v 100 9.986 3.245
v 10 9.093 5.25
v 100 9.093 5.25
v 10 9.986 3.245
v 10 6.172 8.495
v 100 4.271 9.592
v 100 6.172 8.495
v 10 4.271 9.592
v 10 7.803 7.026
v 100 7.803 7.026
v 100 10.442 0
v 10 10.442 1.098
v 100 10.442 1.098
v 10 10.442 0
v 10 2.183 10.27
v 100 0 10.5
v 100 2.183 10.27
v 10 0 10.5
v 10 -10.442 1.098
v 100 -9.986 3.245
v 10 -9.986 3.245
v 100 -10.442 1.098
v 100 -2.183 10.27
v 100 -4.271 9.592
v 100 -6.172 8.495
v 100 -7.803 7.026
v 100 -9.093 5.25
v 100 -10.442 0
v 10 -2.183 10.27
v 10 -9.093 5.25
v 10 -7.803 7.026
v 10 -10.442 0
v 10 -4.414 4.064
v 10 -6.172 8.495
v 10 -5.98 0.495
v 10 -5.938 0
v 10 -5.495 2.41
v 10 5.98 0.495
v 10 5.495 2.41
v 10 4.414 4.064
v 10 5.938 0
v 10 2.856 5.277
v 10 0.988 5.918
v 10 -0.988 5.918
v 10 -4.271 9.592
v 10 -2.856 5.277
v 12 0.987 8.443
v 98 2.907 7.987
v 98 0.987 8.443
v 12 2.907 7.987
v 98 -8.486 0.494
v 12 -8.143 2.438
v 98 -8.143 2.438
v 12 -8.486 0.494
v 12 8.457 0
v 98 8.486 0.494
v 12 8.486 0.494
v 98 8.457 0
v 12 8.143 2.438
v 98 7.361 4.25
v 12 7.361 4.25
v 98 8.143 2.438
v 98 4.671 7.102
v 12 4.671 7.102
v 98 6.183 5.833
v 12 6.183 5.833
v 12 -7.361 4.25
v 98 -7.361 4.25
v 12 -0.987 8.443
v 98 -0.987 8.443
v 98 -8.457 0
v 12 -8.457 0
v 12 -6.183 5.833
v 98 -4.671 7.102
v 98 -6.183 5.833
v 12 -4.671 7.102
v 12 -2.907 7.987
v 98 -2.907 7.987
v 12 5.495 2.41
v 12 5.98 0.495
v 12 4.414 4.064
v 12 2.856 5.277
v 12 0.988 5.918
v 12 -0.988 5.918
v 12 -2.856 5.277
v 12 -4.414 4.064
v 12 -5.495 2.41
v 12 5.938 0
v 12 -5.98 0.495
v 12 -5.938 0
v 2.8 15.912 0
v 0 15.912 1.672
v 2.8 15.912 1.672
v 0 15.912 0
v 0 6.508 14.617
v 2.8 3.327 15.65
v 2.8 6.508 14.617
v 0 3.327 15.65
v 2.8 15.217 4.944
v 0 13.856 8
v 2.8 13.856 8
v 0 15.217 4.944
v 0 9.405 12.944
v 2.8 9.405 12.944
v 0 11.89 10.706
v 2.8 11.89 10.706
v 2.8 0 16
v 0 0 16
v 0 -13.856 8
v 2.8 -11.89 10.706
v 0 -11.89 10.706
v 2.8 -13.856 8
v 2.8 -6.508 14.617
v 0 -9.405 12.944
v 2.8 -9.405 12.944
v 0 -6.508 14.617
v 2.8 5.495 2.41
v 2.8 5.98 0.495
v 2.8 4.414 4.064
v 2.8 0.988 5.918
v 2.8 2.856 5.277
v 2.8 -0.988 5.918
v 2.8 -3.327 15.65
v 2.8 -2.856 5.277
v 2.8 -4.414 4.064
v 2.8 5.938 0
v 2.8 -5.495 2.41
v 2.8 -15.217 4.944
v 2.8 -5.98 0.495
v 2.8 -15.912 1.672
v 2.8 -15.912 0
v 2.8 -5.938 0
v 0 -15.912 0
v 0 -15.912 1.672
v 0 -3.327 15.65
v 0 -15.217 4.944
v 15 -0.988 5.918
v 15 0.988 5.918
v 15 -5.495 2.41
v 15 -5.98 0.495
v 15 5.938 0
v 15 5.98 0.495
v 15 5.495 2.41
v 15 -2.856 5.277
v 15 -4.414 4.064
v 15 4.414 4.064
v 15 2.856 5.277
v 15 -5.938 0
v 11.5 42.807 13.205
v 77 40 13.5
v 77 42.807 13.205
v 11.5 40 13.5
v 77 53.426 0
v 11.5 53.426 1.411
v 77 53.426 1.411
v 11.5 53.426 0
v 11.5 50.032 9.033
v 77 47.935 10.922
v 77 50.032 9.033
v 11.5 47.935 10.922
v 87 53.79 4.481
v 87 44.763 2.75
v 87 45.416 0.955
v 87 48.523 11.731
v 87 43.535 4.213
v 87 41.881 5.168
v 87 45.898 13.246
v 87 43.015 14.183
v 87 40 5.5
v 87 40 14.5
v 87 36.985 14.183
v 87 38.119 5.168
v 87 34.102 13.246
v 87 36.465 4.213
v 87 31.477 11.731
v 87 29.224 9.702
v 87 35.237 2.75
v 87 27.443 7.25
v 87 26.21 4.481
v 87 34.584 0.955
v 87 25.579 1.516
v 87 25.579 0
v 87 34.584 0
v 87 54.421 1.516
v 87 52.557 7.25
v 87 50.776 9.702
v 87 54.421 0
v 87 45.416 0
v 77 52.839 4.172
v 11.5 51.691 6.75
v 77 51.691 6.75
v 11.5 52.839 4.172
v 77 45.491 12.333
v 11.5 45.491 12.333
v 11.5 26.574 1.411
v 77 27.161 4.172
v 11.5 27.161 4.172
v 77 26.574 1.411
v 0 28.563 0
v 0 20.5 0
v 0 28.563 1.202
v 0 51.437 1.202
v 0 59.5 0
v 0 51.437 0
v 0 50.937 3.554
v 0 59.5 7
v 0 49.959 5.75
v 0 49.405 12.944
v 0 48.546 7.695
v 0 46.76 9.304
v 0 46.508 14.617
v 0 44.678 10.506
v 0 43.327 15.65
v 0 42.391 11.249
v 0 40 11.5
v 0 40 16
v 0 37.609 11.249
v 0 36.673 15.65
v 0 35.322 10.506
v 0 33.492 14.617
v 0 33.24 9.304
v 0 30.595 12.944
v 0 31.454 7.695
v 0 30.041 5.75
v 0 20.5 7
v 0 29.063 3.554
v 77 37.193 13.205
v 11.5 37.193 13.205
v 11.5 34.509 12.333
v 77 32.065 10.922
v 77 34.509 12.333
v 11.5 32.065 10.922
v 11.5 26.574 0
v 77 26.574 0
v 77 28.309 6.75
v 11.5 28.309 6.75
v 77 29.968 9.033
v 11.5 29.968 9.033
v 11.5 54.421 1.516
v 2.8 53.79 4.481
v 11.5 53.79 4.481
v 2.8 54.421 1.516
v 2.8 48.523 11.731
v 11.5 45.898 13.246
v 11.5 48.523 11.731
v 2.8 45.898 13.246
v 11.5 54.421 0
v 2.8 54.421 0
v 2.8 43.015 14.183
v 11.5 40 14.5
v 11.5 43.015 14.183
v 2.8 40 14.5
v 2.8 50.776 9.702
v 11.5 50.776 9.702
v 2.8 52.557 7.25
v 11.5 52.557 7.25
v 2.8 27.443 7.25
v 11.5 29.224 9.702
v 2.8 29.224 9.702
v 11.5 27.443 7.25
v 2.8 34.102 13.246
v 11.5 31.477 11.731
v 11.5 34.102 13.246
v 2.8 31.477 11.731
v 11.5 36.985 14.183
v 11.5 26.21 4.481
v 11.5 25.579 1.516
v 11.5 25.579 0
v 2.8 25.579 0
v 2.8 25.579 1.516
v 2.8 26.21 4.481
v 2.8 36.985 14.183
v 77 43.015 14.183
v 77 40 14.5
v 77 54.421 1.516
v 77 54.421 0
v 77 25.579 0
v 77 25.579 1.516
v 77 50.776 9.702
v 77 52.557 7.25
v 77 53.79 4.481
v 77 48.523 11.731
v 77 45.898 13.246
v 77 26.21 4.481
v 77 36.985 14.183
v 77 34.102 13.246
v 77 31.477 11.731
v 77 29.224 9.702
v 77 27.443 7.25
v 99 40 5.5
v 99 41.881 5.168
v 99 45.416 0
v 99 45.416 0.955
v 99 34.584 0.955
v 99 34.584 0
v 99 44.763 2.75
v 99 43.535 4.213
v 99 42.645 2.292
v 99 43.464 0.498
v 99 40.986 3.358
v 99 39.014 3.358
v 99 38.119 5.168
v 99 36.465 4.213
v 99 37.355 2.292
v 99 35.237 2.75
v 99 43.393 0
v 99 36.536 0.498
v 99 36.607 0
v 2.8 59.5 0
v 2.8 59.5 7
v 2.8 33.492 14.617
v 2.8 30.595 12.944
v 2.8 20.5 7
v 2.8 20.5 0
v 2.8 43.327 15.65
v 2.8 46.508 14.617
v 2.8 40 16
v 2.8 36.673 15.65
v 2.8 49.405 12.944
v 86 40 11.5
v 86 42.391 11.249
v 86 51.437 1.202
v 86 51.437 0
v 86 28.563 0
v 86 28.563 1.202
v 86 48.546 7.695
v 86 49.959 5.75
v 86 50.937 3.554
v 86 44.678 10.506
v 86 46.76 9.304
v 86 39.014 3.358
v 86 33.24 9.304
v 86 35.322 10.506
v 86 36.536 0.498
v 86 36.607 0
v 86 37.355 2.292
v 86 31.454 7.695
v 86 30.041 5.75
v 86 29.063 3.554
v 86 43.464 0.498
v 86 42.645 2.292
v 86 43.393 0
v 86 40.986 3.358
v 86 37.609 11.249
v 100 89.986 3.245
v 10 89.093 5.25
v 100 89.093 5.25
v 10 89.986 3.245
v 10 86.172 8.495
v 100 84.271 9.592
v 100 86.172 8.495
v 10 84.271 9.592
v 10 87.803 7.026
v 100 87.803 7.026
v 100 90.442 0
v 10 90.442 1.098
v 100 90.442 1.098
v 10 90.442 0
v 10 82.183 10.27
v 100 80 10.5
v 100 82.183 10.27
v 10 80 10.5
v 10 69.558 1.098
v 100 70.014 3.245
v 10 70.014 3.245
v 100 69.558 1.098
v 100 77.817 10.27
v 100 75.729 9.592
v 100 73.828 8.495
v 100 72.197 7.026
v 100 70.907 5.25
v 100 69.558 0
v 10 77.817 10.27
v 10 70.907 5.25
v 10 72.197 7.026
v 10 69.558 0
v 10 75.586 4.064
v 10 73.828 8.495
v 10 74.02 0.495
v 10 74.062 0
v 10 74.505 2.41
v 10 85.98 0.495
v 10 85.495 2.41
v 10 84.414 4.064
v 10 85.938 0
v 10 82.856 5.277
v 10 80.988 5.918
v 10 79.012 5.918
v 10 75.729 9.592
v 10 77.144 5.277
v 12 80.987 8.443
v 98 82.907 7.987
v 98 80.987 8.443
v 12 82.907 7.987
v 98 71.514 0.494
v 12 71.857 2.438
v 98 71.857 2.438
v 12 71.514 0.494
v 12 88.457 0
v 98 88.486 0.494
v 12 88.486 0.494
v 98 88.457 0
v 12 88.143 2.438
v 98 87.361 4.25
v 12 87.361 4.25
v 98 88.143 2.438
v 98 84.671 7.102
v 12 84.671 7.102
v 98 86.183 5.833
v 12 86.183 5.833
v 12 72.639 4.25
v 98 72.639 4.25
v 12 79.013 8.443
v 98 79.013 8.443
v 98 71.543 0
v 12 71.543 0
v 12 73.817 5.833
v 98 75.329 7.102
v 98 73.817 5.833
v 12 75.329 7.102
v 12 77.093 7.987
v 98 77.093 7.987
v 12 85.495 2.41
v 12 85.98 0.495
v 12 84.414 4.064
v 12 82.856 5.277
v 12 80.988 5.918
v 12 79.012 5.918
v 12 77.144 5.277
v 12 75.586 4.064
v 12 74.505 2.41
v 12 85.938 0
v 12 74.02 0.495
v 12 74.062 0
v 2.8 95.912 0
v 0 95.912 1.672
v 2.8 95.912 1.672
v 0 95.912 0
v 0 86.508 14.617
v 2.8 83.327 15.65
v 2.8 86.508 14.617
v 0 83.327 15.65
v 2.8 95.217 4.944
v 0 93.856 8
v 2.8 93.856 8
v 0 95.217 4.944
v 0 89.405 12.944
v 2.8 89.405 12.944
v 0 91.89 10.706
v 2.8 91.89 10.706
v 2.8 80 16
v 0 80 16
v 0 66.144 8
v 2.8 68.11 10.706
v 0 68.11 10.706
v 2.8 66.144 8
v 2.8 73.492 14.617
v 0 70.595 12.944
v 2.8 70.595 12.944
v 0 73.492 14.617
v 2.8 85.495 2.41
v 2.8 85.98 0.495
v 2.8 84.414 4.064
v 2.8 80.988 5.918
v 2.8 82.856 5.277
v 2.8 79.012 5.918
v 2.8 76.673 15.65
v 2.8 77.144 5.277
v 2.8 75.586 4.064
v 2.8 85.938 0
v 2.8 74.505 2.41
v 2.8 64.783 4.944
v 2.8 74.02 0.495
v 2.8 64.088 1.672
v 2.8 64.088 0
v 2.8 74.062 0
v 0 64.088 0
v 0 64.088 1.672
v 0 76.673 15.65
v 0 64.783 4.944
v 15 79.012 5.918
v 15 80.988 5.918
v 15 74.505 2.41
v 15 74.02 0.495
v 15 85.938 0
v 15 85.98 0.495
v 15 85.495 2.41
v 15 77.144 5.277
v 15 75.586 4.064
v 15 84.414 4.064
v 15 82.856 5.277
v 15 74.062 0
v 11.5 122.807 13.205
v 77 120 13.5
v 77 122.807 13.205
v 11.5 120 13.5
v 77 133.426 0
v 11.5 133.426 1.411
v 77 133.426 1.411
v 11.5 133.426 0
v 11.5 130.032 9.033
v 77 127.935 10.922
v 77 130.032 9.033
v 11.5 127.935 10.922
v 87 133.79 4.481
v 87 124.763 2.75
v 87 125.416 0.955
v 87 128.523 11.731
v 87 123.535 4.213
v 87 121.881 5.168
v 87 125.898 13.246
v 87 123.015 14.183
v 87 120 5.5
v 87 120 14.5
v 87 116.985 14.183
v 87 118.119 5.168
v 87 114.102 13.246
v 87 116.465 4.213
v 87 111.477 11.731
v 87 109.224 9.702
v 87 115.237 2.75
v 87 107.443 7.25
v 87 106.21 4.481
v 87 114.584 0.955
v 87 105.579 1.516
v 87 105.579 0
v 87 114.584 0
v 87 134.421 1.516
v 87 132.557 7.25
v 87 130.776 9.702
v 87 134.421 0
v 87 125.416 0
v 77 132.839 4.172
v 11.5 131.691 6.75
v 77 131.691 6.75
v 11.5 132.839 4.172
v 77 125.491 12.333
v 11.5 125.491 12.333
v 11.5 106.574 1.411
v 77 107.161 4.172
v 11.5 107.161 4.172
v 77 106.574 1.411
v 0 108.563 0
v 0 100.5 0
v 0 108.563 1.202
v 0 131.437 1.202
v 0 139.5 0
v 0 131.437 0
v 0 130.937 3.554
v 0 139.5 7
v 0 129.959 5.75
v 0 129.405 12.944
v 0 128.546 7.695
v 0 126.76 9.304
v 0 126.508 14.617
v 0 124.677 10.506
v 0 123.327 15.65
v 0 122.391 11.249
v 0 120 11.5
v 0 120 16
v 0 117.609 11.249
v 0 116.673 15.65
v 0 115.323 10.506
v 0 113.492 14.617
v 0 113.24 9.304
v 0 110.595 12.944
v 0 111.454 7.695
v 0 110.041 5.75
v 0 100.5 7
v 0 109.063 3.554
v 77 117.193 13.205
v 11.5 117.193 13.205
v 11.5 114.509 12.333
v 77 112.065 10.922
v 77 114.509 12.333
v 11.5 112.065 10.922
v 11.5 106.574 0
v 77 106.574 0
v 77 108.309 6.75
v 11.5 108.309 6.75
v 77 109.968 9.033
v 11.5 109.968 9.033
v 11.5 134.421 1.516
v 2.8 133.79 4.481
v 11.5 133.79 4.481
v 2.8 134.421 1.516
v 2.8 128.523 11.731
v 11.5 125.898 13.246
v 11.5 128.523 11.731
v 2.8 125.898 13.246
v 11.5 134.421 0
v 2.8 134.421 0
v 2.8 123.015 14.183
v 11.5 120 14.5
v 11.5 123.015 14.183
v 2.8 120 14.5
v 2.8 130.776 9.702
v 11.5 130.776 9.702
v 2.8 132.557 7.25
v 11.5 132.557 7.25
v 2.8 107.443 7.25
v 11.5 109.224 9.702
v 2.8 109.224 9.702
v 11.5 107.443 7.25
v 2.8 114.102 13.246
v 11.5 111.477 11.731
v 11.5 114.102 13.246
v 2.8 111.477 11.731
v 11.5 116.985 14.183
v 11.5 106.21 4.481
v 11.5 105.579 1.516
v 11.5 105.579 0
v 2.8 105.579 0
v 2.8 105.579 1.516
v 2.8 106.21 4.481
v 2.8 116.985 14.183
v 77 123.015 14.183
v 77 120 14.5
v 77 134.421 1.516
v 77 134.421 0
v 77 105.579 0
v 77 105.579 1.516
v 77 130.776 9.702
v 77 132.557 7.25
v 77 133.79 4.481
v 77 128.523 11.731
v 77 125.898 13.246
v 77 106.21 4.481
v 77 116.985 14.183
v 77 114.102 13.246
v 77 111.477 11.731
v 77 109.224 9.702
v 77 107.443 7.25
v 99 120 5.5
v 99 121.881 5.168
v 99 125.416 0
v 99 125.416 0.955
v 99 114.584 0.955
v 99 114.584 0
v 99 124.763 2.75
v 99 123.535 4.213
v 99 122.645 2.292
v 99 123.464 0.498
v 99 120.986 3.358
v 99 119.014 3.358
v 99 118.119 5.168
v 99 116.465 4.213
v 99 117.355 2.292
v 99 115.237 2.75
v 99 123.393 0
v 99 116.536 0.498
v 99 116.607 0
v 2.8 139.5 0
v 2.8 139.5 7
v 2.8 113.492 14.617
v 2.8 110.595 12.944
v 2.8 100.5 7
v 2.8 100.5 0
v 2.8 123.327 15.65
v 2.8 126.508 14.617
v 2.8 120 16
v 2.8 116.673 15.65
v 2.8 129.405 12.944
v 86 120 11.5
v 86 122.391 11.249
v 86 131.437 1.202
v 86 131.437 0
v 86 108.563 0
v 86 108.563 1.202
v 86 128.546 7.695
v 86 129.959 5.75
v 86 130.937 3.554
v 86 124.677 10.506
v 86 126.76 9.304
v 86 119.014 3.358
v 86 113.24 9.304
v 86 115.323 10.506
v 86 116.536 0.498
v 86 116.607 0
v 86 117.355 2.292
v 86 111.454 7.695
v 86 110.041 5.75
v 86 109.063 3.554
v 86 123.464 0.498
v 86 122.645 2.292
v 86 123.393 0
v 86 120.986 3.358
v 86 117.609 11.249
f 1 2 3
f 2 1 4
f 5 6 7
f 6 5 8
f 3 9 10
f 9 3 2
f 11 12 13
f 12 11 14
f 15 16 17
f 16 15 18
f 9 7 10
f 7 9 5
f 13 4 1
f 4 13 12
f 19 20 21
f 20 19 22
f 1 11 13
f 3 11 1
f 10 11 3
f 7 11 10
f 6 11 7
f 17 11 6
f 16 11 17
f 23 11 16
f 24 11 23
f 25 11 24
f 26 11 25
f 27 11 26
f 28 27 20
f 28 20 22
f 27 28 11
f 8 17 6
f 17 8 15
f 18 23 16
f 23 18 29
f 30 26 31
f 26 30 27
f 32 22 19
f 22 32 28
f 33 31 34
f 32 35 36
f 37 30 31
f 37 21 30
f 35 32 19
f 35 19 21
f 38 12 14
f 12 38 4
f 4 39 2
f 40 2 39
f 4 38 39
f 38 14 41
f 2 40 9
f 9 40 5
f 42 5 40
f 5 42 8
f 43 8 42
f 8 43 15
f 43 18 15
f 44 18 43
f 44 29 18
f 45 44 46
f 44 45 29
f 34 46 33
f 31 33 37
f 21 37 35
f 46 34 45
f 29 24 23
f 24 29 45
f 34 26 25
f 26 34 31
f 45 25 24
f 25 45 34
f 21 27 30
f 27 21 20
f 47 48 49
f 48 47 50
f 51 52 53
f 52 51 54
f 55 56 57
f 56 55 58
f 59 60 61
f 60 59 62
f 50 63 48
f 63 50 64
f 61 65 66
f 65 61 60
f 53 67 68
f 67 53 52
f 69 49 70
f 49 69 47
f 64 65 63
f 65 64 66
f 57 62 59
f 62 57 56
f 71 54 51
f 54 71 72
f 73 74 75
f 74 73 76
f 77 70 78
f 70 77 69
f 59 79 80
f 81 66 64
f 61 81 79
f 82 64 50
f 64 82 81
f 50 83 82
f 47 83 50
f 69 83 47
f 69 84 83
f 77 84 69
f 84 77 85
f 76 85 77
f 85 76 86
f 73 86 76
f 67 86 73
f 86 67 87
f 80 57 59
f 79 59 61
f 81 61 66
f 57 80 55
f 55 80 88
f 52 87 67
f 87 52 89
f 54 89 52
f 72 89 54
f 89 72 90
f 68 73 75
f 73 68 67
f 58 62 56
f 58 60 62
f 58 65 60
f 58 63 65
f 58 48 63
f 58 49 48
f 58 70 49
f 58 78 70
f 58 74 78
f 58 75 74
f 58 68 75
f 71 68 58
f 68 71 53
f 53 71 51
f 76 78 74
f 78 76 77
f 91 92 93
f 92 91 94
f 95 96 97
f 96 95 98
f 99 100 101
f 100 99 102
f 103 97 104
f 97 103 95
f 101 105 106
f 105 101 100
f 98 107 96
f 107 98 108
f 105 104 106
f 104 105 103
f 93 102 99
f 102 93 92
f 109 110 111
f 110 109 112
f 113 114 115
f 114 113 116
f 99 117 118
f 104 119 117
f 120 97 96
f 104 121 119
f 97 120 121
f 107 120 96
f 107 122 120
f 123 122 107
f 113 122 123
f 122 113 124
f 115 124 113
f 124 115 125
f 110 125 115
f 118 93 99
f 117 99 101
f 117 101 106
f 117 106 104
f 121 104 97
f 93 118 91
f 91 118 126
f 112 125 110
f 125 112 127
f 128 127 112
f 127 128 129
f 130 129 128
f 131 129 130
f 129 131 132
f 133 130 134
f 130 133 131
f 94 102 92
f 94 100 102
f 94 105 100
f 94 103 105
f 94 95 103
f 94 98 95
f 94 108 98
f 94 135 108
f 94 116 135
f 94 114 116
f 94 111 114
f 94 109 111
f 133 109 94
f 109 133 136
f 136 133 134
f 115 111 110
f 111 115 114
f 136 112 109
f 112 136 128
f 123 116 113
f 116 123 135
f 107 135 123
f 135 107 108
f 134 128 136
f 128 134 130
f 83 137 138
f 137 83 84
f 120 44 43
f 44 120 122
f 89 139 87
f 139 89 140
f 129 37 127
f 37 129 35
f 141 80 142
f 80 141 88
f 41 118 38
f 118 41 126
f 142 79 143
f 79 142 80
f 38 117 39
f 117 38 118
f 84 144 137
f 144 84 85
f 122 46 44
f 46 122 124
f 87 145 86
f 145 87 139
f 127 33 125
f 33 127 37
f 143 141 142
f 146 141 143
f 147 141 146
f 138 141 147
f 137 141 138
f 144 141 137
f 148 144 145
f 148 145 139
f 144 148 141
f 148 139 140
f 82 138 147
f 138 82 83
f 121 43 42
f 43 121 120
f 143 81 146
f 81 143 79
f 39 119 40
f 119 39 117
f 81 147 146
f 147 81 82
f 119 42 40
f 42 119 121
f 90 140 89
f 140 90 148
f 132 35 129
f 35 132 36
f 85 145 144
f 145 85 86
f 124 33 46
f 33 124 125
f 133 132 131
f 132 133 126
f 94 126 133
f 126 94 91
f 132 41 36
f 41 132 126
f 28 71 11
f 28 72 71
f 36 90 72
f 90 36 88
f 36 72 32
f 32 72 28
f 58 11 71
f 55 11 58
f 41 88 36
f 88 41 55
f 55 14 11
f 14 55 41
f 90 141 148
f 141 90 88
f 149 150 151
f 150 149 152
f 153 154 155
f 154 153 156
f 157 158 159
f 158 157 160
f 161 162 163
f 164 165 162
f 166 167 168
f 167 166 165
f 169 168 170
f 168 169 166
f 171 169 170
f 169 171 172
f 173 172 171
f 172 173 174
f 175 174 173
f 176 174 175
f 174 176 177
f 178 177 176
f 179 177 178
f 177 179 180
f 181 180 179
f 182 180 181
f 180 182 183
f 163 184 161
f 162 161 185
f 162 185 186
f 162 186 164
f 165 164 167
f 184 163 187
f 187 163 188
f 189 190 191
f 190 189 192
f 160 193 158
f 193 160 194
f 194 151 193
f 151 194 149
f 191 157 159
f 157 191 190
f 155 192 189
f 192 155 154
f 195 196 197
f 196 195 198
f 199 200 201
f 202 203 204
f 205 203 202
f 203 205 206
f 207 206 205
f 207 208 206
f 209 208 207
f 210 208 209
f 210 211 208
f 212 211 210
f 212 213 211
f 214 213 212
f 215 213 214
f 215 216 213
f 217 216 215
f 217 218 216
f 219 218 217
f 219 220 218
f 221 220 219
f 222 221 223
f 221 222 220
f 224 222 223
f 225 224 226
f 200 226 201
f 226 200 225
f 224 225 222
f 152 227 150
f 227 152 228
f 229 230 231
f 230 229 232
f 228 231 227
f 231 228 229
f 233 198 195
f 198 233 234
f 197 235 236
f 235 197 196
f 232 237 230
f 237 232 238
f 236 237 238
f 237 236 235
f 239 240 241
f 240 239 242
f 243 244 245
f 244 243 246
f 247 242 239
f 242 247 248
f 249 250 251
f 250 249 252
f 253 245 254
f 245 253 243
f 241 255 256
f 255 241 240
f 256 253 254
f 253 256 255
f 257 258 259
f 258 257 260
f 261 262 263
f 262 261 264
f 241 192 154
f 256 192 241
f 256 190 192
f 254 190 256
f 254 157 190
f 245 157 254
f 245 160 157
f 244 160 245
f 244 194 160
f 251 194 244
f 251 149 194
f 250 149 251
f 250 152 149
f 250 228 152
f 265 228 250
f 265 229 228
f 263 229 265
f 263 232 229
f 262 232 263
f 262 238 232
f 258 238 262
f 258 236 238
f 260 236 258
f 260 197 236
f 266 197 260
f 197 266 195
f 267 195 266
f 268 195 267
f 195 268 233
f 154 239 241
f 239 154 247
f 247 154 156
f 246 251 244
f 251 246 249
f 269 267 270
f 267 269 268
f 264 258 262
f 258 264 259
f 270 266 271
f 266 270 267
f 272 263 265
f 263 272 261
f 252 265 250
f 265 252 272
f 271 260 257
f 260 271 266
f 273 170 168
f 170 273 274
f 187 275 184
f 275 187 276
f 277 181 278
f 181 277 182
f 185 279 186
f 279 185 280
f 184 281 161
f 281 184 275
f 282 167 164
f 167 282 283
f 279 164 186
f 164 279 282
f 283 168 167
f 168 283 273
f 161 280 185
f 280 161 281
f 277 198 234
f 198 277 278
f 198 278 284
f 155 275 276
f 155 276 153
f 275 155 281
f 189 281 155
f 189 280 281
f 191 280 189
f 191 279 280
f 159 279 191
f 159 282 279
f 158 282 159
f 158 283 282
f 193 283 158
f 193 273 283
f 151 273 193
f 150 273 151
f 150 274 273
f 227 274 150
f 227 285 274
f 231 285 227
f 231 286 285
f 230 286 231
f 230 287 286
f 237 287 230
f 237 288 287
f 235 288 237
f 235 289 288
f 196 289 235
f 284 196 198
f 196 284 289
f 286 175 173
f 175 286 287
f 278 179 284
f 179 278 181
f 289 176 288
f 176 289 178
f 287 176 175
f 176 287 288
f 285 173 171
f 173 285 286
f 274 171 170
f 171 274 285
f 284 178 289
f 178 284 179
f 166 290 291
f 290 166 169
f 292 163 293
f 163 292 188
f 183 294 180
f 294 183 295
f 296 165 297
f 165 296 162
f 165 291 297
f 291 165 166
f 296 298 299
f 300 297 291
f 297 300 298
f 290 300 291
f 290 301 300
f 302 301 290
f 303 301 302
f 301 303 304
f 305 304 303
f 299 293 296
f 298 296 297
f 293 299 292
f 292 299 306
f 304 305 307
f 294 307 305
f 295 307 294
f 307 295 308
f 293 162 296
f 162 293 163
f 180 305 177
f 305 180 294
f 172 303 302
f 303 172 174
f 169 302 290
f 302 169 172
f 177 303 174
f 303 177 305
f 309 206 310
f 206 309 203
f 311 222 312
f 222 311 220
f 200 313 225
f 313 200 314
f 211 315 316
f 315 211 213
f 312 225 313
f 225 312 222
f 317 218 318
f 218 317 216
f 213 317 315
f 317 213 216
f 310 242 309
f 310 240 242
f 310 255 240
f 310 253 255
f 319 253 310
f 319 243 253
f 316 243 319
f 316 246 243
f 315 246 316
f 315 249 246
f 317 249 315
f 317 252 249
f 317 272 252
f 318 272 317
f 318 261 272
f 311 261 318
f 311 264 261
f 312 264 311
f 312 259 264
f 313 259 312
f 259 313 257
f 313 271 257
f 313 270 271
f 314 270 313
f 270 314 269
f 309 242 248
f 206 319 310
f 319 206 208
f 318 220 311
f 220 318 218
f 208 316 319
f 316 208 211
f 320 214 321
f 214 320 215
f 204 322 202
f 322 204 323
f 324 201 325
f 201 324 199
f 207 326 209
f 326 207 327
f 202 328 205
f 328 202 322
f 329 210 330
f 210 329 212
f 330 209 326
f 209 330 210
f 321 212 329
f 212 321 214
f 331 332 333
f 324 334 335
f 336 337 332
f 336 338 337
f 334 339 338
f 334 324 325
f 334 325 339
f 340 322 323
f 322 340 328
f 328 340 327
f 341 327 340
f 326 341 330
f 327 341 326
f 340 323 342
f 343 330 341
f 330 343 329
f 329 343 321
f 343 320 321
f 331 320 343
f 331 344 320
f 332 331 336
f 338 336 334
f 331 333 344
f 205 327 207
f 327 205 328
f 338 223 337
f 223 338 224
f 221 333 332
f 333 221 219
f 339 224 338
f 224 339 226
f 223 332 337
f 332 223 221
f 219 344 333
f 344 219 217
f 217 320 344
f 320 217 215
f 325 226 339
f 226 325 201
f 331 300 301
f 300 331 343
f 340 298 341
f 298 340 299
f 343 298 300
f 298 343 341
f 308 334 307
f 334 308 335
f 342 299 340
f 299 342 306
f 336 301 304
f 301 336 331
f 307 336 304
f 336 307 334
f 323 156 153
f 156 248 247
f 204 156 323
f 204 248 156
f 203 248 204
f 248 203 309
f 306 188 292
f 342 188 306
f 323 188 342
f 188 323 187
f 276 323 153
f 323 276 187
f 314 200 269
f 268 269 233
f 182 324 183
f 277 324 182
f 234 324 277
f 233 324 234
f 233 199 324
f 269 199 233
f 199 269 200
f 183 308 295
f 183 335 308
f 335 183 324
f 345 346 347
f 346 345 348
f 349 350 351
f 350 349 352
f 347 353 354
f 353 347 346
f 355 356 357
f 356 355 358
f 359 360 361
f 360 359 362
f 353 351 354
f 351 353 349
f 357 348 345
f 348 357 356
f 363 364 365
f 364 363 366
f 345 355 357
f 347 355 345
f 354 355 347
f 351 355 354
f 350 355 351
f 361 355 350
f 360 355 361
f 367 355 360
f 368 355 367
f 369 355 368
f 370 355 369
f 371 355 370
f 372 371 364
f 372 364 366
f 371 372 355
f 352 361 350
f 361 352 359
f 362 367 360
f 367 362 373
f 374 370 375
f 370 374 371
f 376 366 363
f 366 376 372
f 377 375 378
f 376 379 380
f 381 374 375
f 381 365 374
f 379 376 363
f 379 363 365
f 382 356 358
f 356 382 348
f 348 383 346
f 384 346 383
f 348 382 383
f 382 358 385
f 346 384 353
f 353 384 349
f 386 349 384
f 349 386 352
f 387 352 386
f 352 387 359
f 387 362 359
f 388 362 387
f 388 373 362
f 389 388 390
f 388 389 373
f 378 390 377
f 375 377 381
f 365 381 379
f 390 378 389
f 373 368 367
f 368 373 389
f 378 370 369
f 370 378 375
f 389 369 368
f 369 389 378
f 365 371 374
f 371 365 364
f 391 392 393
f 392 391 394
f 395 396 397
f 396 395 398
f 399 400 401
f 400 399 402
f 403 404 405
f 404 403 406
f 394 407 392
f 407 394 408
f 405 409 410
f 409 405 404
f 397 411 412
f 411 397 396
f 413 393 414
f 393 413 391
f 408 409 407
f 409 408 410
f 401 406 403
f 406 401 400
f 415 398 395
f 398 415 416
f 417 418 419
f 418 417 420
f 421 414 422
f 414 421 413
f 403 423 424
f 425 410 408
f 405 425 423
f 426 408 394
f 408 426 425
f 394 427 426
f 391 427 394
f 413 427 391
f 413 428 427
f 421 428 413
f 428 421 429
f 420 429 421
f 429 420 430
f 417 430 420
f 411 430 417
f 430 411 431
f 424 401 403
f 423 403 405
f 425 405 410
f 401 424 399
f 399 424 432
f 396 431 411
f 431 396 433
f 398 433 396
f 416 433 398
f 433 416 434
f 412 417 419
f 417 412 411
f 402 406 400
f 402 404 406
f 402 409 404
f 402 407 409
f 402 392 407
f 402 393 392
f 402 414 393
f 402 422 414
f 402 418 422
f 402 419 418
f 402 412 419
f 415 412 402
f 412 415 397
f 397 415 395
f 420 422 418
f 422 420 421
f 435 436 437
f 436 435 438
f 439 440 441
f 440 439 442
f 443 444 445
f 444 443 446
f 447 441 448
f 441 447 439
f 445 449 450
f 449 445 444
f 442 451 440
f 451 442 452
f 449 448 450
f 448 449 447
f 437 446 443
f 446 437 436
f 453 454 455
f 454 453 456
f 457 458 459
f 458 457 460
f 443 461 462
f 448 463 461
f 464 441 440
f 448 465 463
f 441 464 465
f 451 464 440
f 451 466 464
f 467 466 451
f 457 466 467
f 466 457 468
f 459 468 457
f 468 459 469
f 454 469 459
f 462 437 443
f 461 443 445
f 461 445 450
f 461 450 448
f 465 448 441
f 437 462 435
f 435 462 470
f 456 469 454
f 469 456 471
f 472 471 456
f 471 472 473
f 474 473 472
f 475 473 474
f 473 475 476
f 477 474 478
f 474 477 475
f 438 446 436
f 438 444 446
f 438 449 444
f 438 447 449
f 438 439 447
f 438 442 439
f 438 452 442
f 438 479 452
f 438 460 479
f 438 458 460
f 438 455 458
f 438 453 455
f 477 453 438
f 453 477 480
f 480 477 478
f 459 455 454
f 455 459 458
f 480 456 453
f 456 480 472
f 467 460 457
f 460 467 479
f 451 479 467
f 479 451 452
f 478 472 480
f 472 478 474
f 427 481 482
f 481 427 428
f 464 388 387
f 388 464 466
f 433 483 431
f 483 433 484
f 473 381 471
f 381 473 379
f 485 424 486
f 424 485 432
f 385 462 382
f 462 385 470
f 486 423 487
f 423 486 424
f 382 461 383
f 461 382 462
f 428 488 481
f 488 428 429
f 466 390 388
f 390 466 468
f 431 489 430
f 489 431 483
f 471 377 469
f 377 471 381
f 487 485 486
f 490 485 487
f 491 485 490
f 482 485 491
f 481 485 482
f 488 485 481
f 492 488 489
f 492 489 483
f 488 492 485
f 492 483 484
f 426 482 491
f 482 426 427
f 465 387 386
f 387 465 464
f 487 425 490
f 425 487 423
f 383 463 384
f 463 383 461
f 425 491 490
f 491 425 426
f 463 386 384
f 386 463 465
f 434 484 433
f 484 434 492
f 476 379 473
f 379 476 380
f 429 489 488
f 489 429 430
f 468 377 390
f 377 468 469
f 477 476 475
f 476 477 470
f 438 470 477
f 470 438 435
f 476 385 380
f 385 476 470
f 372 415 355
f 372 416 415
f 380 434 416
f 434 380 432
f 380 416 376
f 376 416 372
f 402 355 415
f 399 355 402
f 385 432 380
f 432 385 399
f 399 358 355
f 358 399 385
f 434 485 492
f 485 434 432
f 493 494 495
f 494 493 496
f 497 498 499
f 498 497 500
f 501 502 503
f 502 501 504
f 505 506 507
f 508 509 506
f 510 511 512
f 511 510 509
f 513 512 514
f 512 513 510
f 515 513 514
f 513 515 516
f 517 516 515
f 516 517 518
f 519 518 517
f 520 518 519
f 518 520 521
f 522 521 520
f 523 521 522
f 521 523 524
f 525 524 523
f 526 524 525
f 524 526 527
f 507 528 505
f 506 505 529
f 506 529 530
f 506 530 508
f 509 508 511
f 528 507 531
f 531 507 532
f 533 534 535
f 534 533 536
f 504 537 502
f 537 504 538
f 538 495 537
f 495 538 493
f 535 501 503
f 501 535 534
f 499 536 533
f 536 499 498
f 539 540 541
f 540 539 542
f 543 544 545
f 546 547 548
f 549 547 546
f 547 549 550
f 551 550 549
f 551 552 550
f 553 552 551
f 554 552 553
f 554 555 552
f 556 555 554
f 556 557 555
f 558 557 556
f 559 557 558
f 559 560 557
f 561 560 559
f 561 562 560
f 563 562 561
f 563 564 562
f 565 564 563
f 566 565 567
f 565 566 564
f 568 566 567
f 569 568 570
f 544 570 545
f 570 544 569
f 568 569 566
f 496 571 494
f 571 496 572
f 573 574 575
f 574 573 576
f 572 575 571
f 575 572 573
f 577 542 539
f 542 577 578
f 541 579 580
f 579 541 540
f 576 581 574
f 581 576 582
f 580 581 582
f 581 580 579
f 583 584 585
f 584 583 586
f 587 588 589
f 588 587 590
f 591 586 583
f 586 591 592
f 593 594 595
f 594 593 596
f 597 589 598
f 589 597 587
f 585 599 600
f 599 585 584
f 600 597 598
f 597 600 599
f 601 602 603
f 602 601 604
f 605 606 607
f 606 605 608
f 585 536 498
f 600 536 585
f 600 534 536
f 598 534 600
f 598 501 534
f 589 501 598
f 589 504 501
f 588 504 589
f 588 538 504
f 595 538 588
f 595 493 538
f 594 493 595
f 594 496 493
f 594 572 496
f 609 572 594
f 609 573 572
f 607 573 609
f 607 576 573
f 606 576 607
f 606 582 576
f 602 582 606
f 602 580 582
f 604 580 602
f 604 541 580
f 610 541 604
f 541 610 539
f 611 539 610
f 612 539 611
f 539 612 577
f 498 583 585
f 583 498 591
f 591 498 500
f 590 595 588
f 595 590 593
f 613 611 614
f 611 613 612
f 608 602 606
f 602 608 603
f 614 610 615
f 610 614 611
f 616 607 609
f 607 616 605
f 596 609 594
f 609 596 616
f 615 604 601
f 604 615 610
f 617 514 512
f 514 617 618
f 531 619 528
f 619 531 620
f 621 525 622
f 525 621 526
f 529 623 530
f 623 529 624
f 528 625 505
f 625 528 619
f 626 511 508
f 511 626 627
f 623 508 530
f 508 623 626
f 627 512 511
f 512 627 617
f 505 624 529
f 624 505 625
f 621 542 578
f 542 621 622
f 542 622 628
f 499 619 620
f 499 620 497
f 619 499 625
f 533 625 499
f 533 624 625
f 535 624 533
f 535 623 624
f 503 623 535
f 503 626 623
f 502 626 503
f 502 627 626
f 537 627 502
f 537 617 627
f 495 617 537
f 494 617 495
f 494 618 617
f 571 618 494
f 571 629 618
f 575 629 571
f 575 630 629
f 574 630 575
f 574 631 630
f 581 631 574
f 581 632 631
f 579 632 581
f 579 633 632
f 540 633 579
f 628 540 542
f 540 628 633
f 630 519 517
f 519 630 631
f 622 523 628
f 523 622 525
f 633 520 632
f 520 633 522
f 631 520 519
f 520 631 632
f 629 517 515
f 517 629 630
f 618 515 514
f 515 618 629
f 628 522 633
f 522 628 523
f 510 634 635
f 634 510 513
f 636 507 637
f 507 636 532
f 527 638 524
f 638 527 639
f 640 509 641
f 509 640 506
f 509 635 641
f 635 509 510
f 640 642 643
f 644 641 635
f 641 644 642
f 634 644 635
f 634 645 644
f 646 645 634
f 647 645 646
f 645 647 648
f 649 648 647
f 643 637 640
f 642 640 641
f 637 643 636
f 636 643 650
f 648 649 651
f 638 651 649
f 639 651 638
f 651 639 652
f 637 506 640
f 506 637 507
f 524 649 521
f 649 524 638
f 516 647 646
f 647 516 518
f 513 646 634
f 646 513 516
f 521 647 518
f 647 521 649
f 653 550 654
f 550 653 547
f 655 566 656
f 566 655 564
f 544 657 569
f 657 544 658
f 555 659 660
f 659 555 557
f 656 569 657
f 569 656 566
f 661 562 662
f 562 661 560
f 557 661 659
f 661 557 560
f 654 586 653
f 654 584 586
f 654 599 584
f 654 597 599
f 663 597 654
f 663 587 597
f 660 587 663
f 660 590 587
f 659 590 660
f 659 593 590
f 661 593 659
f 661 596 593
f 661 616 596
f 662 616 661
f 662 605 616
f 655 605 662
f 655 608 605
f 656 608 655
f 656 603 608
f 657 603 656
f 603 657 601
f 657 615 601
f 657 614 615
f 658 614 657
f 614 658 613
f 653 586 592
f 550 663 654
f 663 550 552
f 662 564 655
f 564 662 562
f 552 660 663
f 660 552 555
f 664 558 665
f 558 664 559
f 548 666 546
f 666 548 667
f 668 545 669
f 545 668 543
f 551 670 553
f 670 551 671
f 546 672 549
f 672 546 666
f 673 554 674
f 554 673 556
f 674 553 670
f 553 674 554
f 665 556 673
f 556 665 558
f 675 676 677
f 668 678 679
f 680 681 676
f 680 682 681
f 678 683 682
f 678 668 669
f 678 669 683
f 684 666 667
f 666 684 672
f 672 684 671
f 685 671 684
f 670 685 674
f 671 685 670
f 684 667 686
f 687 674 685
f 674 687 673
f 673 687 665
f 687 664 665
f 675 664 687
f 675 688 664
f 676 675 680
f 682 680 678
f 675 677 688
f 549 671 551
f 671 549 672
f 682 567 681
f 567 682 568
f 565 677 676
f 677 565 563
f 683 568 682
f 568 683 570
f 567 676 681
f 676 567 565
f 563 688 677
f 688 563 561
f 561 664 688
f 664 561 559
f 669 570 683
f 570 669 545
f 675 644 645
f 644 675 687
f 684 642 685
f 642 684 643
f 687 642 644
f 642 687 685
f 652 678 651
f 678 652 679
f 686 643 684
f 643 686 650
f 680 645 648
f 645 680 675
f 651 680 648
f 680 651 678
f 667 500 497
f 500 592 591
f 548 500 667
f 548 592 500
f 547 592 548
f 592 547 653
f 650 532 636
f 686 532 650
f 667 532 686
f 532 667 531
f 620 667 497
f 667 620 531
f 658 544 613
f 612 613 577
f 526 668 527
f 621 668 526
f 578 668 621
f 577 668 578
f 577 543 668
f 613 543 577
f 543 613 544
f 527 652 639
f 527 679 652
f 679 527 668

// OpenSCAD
// Corps
log = 87;
rco = 27/2;

// Base
bax = 32/2;
bay = 39/2;
ep = 2.8;


module corps() difference(){
	
	union(){
		// corps
		log = 87;
		rco = 27/2;
		cylinder(r=rco, h=log); 
		cylinder(r=rco+1, h=11.5); 
		translate([0,0,log-10]) cylinder(r=rco+1, h=10); 
		translate([0,0,log]) cylinder(r=11/2, h=12); 

		// base
		hull(){
			translate([-7,-bay,0]) cube([14,3,ep]);
			translate([-7,bay-3,0]) cube([14,3,ep]);
			cylinder(r=bax, h=ep); 
		}
	}
	
	// vide
	translate([0,0,-1]) cylinder(r=rco-2, h=log);
	translate([0,0,log-2]) cylinder(r=11/2-2, h=20);
}

// pist
rpou = 32/2;
rpis = rco-3;
lpis = 100;

module pist(){
	
	cylinder(r=rpou, h=ep);
	cylinder(r=12/2, h=15);
	difference(){
		translate([0,0,10]) cylinder(r=rpis, h=lpis-10);
		translate([0,0,12]) cylinder(r=rpis-2, h=lpis-14);
	}
	
}

difference() {
	rotate([0,90,0]) pist();
	translate([-50,-50,-50]) cube([200,120,50]);
}

translate([0,40,0]) difference() {
	rotate([0,90,0]) corps();
	translate([-50,-50,-50]) cube([200,120,50]);
}

translate([0,40*2,0]) difference() {
	rotate([0,90,0]) pist();
	translate([-50,-50,-50]) cube([200,120,50]);
}

translate([0,40*3,0]) difference() {
	rotate([0,90,0]) corps();
	translate([-50,-50,-50]) cube([200,120,50]);
}
